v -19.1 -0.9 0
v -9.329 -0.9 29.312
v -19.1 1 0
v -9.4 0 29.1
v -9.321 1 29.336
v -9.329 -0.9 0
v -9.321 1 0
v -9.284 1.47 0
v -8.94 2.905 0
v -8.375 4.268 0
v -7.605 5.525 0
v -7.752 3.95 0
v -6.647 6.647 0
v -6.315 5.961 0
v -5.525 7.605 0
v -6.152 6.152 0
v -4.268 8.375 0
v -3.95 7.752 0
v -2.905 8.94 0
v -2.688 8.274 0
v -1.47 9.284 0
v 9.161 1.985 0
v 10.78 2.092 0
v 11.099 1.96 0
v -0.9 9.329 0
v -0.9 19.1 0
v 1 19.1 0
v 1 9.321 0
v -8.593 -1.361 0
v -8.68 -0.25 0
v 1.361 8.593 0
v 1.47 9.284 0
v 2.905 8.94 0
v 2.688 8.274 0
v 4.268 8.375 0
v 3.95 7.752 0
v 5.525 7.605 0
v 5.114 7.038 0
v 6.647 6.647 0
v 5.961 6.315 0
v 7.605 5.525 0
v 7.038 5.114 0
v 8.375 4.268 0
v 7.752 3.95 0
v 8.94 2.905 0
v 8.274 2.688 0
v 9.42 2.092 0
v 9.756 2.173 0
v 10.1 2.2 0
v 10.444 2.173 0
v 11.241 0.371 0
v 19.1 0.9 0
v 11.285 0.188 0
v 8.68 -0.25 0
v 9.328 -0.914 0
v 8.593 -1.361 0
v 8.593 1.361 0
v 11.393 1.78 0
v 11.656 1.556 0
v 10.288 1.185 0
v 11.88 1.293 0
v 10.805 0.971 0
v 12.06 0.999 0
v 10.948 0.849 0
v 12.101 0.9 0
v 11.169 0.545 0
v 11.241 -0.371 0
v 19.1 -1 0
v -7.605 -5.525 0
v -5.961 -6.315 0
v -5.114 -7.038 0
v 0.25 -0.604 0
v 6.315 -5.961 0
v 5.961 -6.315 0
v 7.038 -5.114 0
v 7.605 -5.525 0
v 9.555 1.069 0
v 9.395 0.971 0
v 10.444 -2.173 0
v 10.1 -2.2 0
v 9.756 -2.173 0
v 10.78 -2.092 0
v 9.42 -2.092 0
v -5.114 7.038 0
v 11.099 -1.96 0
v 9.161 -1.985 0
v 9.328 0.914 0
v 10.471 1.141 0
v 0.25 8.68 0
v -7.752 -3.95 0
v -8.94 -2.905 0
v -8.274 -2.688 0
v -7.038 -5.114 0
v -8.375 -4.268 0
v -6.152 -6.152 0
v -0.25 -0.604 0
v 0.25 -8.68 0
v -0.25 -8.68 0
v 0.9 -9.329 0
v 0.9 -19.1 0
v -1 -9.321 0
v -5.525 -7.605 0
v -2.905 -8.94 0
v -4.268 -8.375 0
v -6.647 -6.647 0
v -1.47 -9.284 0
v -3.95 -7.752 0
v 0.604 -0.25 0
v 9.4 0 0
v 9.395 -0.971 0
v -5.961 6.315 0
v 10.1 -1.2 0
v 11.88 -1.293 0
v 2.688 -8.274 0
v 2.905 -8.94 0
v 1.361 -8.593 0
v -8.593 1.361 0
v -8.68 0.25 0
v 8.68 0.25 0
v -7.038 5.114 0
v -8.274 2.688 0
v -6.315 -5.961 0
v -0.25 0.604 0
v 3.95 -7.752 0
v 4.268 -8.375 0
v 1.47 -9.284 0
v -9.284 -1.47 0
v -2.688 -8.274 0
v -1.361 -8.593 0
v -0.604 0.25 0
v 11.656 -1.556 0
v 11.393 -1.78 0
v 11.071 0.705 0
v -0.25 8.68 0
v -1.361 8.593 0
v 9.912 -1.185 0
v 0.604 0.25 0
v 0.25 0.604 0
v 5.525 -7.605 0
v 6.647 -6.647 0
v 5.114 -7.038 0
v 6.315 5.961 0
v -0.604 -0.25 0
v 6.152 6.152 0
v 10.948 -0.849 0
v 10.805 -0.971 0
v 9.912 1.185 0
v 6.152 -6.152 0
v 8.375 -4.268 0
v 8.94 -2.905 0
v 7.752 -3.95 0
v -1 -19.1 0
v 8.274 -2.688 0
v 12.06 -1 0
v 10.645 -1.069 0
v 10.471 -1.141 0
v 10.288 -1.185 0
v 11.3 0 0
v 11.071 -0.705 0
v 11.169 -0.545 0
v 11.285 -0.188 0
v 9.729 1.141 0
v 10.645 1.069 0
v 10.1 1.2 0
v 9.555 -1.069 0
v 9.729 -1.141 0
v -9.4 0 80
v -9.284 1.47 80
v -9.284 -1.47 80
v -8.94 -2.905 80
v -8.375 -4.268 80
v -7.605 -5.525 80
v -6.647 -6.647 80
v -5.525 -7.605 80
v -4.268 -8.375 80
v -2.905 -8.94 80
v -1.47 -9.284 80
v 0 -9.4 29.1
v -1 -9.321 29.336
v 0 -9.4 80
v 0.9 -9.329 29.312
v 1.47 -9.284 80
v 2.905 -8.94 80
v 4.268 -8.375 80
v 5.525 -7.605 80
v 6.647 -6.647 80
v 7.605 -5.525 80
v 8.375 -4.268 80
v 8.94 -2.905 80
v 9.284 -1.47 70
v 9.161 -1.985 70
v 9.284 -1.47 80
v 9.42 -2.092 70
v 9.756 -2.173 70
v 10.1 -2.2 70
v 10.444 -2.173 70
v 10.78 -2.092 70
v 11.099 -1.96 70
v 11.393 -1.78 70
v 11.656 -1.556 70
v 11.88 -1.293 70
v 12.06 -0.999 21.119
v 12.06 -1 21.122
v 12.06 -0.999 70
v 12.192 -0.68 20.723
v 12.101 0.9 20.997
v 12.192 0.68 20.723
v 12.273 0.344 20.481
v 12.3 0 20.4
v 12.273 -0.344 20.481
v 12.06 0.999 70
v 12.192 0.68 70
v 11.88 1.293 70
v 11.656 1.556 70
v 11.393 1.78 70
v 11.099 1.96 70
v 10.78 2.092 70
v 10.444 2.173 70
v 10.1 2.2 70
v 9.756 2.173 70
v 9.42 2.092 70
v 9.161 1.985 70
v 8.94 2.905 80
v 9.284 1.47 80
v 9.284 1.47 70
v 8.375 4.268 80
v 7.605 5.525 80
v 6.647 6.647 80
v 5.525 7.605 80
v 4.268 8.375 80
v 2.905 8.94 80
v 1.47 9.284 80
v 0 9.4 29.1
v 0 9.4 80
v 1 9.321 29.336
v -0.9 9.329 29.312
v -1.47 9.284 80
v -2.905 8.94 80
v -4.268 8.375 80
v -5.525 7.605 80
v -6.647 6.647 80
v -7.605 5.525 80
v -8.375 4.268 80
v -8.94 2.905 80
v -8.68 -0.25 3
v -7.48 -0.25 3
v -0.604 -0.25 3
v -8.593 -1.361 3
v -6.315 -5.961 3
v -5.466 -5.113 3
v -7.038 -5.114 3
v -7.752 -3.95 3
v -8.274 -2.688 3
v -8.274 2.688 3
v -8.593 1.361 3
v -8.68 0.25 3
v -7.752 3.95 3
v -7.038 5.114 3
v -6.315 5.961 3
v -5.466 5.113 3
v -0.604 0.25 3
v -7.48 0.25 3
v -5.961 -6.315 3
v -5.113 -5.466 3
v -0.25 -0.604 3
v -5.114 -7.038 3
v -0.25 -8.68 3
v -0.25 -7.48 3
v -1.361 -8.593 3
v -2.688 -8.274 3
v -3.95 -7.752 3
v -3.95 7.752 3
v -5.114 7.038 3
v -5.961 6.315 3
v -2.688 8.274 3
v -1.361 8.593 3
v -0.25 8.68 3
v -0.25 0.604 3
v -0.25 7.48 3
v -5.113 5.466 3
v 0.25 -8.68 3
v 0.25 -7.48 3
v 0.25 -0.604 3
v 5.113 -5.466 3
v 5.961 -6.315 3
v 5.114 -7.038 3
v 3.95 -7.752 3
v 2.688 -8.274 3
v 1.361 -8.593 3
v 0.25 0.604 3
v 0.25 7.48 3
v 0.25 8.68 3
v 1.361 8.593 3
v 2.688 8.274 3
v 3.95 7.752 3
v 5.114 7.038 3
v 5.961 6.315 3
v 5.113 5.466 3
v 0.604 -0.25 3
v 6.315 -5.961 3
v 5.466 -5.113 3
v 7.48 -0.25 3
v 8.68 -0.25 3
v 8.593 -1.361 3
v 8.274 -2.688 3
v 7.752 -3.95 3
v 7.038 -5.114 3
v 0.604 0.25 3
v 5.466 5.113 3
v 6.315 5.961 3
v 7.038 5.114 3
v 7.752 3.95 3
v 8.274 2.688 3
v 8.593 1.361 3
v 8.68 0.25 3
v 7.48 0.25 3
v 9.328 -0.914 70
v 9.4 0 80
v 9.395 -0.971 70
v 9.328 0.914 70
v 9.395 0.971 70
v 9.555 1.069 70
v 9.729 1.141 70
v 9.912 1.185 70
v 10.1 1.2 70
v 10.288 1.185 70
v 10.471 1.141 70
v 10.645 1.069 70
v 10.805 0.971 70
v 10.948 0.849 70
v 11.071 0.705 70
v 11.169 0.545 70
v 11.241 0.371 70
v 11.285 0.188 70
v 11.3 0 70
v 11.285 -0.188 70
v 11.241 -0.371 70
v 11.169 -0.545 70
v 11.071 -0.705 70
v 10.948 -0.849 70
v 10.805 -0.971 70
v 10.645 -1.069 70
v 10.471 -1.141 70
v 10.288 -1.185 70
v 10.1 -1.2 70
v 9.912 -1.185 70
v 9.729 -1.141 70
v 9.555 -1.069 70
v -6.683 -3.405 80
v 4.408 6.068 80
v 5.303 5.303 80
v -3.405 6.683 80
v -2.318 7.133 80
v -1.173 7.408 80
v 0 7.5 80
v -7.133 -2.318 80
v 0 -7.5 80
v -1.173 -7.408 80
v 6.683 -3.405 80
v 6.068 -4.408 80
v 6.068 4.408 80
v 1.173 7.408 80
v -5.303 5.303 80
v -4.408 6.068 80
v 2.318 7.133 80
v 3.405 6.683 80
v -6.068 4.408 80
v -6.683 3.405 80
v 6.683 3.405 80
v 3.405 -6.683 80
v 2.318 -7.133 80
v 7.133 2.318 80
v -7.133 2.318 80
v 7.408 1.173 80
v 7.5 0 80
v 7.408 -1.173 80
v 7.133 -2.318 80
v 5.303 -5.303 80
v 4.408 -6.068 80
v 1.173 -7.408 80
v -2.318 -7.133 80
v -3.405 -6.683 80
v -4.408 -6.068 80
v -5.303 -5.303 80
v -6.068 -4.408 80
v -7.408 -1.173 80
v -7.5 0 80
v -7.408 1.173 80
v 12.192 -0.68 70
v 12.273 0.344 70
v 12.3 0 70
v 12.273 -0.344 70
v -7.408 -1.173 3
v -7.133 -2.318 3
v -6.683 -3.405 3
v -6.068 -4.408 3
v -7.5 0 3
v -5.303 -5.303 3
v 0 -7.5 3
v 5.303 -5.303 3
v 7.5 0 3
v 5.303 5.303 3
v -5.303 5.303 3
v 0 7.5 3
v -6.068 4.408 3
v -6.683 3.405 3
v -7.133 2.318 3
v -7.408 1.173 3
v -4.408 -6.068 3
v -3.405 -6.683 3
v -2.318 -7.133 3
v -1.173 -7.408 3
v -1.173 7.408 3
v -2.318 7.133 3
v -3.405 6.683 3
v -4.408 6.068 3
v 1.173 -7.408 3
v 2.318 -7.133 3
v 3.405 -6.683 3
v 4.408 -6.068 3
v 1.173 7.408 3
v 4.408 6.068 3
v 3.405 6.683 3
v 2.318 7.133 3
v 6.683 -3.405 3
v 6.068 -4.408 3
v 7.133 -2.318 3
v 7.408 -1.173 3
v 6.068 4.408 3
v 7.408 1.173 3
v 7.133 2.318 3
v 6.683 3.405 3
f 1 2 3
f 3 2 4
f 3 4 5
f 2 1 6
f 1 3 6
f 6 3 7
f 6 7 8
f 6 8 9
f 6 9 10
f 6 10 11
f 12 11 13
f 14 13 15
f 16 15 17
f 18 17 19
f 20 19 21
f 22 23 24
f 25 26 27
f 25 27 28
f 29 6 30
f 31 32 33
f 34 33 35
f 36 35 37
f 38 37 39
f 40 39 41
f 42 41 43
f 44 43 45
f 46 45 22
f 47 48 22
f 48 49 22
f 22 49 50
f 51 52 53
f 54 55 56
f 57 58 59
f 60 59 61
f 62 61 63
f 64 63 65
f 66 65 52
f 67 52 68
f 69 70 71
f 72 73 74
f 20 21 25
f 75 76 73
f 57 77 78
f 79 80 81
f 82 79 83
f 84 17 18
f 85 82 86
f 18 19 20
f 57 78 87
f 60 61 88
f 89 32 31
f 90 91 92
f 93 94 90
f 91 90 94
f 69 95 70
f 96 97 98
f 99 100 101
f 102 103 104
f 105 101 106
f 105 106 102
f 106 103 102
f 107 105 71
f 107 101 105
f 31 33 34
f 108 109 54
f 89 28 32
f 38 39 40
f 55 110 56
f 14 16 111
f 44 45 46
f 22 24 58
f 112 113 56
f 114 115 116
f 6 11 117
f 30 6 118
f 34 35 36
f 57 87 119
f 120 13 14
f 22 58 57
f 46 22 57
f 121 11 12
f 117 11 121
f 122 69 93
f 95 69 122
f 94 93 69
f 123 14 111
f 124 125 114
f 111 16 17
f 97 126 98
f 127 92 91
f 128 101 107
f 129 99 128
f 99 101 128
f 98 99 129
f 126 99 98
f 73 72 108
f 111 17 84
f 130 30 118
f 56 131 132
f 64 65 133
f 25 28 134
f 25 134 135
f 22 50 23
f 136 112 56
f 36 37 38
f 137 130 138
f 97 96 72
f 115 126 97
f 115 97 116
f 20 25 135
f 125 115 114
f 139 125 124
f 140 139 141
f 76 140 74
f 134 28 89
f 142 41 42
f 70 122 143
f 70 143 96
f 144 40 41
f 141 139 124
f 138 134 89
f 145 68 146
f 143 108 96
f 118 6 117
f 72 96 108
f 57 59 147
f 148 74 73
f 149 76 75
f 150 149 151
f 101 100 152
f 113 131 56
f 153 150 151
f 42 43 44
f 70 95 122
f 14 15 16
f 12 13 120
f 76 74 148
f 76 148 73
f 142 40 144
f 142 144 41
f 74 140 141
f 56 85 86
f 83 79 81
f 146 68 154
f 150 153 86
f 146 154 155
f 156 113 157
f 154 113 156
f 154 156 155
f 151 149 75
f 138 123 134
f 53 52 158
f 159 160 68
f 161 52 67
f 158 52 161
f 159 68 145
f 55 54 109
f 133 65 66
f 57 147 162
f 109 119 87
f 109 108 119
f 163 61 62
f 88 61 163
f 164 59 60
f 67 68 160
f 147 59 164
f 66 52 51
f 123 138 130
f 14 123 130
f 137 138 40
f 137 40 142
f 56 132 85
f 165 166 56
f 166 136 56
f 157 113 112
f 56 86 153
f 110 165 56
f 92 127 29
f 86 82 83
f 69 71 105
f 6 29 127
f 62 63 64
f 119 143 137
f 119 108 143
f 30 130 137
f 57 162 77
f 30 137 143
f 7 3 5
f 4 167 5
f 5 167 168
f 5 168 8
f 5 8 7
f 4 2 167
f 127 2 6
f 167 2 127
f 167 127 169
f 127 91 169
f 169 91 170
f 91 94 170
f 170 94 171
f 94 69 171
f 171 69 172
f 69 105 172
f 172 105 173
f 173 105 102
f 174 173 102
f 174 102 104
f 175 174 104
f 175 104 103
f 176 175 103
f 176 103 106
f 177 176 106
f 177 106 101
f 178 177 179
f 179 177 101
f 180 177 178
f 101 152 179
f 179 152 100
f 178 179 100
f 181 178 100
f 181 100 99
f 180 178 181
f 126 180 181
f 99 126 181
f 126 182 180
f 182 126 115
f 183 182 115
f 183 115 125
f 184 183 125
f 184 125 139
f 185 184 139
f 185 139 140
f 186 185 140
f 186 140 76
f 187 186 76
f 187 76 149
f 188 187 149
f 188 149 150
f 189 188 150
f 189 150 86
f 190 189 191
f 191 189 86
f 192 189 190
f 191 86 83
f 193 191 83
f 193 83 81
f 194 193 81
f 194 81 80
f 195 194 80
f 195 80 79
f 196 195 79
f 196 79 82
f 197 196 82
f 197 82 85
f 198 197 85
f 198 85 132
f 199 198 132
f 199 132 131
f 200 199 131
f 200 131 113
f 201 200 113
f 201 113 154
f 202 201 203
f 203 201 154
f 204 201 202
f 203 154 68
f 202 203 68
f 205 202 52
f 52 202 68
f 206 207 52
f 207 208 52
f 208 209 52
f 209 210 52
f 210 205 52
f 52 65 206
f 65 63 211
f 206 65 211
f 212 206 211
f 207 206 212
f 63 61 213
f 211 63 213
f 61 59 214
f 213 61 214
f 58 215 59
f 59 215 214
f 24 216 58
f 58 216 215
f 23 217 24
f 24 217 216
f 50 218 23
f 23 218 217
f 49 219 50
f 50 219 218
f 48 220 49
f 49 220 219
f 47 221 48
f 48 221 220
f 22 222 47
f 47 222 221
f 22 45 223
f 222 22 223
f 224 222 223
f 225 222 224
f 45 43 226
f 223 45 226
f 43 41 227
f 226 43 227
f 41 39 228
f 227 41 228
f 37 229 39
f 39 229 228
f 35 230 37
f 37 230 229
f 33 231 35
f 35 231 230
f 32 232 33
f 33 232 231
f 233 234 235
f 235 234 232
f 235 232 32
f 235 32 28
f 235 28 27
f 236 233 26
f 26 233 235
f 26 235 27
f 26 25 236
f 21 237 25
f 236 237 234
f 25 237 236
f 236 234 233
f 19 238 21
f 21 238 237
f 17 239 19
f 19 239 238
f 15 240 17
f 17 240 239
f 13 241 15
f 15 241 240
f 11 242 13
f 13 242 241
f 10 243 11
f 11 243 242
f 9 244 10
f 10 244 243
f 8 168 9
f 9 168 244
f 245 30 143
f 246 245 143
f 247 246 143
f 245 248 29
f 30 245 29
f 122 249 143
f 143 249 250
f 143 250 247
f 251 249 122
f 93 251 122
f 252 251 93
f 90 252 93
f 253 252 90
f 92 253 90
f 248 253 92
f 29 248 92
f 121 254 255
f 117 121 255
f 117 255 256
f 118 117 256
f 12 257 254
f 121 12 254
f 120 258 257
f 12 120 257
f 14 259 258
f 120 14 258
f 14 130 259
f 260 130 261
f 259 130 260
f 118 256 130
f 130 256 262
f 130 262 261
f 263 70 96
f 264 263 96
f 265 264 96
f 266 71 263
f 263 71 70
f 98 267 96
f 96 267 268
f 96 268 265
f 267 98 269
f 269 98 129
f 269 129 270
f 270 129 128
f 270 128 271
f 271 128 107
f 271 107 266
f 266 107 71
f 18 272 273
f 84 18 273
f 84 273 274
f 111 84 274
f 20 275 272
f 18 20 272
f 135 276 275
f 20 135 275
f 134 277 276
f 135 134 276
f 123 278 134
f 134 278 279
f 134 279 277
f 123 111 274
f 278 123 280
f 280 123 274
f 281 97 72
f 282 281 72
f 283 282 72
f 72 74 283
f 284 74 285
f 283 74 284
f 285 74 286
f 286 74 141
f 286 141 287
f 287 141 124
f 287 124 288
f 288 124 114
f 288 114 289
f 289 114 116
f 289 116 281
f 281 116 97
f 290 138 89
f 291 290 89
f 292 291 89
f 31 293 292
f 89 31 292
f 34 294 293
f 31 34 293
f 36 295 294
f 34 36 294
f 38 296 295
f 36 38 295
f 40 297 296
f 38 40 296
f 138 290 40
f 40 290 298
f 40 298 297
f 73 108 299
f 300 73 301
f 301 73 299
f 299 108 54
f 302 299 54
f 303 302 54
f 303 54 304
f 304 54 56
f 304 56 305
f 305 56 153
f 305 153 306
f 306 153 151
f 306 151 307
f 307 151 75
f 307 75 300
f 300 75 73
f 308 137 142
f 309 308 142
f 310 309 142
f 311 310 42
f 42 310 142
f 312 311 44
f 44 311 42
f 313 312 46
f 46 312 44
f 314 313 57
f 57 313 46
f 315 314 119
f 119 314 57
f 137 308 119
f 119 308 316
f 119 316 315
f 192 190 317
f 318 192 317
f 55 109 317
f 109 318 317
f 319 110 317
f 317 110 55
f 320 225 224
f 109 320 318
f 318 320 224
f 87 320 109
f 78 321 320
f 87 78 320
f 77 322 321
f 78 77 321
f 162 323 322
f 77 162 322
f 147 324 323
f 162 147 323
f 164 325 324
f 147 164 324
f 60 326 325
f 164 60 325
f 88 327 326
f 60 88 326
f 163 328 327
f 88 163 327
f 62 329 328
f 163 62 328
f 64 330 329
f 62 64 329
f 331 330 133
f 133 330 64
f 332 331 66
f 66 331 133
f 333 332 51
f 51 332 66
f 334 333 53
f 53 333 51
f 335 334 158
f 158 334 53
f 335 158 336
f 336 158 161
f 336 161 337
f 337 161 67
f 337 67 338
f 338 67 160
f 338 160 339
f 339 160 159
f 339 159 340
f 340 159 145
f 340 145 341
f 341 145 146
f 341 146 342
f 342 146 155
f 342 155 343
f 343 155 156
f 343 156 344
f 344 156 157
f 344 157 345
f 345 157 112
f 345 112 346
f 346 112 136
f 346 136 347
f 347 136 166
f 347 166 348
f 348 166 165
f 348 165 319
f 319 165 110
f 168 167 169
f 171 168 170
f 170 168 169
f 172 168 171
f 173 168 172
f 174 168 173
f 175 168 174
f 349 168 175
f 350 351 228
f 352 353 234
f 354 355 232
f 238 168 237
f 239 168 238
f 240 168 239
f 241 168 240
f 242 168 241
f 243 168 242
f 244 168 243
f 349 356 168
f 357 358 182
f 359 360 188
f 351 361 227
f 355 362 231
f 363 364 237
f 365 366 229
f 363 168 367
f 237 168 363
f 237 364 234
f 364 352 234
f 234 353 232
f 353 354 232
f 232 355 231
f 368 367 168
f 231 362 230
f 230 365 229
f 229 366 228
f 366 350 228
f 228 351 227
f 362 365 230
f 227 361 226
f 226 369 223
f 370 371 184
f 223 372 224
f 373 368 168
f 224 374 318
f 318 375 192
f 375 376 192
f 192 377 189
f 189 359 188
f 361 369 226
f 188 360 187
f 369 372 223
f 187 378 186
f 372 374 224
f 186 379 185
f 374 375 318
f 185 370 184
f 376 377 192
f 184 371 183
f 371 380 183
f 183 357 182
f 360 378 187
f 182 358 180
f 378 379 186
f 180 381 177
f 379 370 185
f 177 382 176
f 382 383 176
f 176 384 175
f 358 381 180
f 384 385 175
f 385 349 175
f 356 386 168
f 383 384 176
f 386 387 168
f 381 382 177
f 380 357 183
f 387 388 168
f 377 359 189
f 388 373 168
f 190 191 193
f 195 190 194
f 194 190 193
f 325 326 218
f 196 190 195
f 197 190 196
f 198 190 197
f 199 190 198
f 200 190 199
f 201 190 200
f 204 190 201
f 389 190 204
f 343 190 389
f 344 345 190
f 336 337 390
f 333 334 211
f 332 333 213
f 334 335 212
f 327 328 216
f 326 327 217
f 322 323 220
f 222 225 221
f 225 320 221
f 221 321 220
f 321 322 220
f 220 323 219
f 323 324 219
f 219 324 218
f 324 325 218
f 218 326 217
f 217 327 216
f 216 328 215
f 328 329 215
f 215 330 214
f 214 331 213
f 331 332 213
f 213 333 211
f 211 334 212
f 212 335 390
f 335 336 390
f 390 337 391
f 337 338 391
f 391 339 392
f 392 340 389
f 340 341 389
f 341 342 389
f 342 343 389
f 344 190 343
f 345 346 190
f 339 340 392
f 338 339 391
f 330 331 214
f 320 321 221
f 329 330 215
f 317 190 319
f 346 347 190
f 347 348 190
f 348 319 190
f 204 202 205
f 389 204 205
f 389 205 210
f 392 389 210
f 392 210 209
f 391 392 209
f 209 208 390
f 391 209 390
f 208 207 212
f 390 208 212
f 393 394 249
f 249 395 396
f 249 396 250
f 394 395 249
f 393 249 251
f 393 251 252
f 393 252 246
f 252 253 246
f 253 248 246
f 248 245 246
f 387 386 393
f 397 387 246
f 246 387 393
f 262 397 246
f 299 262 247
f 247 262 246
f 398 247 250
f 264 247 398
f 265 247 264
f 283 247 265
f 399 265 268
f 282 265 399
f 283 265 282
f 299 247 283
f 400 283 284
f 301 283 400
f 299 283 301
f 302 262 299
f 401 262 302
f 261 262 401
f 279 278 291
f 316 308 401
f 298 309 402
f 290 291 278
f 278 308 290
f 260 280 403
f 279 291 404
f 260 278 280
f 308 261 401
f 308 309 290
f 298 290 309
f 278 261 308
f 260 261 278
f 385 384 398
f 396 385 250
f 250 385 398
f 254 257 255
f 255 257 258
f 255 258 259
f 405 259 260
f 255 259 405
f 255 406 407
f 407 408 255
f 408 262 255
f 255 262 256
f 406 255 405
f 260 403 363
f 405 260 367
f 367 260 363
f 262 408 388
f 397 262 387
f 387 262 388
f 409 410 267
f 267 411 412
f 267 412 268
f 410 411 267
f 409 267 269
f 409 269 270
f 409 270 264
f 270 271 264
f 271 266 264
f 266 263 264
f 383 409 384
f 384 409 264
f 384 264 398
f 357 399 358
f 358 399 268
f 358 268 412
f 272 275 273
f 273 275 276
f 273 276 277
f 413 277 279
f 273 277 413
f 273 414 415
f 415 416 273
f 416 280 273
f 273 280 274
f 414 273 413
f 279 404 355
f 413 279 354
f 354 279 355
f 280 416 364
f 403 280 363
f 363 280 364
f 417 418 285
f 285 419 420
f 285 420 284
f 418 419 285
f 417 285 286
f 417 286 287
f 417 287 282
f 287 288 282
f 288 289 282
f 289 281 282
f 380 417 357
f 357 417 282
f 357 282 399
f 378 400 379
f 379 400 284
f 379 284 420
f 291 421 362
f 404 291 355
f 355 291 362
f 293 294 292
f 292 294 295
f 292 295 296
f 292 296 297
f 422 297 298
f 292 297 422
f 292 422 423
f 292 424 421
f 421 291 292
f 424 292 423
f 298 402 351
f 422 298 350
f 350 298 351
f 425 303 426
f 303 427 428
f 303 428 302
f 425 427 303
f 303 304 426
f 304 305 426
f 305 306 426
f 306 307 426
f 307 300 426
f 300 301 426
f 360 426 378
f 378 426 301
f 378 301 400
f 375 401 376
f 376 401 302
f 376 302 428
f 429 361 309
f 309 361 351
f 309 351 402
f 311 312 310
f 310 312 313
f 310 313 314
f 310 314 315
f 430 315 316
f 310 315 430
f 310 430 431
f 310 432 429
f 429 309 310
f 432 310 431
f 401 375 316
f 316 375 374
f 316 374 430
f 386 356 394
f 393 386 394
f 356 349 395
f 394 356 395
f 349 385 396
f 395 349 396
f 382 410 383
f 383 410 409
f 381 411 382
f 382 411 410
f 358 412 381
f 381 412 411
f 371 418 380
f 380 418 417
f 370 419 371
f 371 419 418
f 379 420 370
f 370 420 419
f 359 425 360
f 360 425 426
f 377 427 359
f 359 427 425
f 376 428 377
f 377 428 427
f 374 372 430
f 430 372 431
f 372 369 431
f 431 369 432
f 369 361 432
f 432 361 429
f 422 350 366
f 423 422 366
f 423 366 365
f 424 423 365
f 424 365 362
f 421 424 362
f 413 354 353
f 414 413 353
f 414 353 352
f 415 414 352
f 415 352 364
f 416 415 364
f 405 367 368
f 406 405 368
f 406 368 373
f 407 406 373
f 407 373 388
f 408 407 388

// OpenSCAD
tube_height=70;
tube_inner_diameter=15;
tube_inner_radius = tube_inner_diameter / 2;
tube_thickness = 1.9;
tube_outer_radius=tube_inner_radius + tube_thickness;
cylinder_quality=40;
base_inset_radius=tube_inner_radius + 1.2;
base_inset_depth=3;
snitzel = 0.1;

line_guide_outer = 2.2;
line_guide_inner = 1.2;

 f=9.1;
 fe=f+10;
 fh=30;
 z = 0;

module fletch()
{
 color("blue") {
 translate([0,-1,0]) polyhedron ( points = [[f, z, z], [f, tube_thickness, z], [fe, tube_thickness, z], 
                        [fe, z, z], [f, z, fh], [f, tube_thickness, fh]], 
              triangles = [[0,2,1], [0,3,2],  [0,4,3], [1,2,5],
                           [2,4,5], [2,3,4], [0,1,5], [0,5,4]
  ]);
 }
}


difference() {
  cylinder (h=tube_height+10, r=tube_outer_radius, center=false, $fn=cylinder_quality);
  translate([0,0,-1]) cylinder (h=tube_height+12, r=tube_inner_radius, center=false, $fn=cylinder_quality);
  translate([0,0,-1]) cylinder (h=base_inset_depth+1, r=base_inset_radius, center=false, $fn=cylinder_quality);
}


difference() {
 fletch();
 translate([tube_outer_radius+line_guide_outer-1.5,0,-0.5]) cylinder(h=fh+1, r=line_guide_inner, $fn=cylinder_quality);
}

rotate ([0,0,90]) fletch();
rotate ([0,0,180]) fletch();
rotate ([0,0,270]) fletch();


mf_top=tube_height-3;
mf_bottom=mf_top-8;

// Draw mini-fletch
module mini_fletch() {

translate([0,-1,0]) {
 polyhedron (points = [[f, 0, mf_bottom], [f, tube_thickness, mf_bottom], [f+5, tube_thickness, mf_bottom], 
                        [f+5, 0, mf_bottom], [f, 0, mf_top], [f, tube_thickness, mf_top]], 
              triangles = [[0,2,1], [0,3,2],  [0,4,3], [1,2,5],
                           [2,4,5], [2,3,4], [0,1,5], [0,5,4]
  ]);


 polyhedron ( points = [[f, 0, mf_bottom-8], [f, tube_thickness, mf_bottom-8], [f+5, tube_thickness, mf_bottom], 
                        [f+5, 0, mf_bottom], [f, 0, mf_top], [f, tube_thickness, mf_top]], 
              triangles = [[0,2,1], [0,3,2],  [0,4,3], [1,2,5],
                           [2,4,5], [2,3,4], [0,1,5], [0,5,4]
  ]);

}
}

/*
difference() {
 mini_fletch();
 translate([tube_outer_radius+line_guide_outer-1.5,0,mf_bottom-15]) cylinder(h=fh, r=line_guide_inner, $fn=cylinder_quality);

}
*/

difference() {
 translate([tube_outer_radius+line_guide_outer-1.5,0,0])
  cylinder(h=tube_height, r=line_guide_outer, $fn=cylinder_quality);

 translate([tube_outer_radius+line_guide_outer-1.5,0,-1])
  cylinder(h=tube_height+2, r=line_guide_inner, $fn=cylinder_quality);
 translate([0,0,-1]) cylinder (h=base_inset_depth+1, r=base_inset_radius, center=false, $fn=cylinder_quality);
}

module support(rot) {
 rotate([0,0,rot]) translate([0,-0.25,0]) cube(size=[base_inset_radius, 0.5, base_inset_depth]);
}

support(0);
support(45);
support(90);
support(135);
support(180);
support(225);
support(270);
support(315);
